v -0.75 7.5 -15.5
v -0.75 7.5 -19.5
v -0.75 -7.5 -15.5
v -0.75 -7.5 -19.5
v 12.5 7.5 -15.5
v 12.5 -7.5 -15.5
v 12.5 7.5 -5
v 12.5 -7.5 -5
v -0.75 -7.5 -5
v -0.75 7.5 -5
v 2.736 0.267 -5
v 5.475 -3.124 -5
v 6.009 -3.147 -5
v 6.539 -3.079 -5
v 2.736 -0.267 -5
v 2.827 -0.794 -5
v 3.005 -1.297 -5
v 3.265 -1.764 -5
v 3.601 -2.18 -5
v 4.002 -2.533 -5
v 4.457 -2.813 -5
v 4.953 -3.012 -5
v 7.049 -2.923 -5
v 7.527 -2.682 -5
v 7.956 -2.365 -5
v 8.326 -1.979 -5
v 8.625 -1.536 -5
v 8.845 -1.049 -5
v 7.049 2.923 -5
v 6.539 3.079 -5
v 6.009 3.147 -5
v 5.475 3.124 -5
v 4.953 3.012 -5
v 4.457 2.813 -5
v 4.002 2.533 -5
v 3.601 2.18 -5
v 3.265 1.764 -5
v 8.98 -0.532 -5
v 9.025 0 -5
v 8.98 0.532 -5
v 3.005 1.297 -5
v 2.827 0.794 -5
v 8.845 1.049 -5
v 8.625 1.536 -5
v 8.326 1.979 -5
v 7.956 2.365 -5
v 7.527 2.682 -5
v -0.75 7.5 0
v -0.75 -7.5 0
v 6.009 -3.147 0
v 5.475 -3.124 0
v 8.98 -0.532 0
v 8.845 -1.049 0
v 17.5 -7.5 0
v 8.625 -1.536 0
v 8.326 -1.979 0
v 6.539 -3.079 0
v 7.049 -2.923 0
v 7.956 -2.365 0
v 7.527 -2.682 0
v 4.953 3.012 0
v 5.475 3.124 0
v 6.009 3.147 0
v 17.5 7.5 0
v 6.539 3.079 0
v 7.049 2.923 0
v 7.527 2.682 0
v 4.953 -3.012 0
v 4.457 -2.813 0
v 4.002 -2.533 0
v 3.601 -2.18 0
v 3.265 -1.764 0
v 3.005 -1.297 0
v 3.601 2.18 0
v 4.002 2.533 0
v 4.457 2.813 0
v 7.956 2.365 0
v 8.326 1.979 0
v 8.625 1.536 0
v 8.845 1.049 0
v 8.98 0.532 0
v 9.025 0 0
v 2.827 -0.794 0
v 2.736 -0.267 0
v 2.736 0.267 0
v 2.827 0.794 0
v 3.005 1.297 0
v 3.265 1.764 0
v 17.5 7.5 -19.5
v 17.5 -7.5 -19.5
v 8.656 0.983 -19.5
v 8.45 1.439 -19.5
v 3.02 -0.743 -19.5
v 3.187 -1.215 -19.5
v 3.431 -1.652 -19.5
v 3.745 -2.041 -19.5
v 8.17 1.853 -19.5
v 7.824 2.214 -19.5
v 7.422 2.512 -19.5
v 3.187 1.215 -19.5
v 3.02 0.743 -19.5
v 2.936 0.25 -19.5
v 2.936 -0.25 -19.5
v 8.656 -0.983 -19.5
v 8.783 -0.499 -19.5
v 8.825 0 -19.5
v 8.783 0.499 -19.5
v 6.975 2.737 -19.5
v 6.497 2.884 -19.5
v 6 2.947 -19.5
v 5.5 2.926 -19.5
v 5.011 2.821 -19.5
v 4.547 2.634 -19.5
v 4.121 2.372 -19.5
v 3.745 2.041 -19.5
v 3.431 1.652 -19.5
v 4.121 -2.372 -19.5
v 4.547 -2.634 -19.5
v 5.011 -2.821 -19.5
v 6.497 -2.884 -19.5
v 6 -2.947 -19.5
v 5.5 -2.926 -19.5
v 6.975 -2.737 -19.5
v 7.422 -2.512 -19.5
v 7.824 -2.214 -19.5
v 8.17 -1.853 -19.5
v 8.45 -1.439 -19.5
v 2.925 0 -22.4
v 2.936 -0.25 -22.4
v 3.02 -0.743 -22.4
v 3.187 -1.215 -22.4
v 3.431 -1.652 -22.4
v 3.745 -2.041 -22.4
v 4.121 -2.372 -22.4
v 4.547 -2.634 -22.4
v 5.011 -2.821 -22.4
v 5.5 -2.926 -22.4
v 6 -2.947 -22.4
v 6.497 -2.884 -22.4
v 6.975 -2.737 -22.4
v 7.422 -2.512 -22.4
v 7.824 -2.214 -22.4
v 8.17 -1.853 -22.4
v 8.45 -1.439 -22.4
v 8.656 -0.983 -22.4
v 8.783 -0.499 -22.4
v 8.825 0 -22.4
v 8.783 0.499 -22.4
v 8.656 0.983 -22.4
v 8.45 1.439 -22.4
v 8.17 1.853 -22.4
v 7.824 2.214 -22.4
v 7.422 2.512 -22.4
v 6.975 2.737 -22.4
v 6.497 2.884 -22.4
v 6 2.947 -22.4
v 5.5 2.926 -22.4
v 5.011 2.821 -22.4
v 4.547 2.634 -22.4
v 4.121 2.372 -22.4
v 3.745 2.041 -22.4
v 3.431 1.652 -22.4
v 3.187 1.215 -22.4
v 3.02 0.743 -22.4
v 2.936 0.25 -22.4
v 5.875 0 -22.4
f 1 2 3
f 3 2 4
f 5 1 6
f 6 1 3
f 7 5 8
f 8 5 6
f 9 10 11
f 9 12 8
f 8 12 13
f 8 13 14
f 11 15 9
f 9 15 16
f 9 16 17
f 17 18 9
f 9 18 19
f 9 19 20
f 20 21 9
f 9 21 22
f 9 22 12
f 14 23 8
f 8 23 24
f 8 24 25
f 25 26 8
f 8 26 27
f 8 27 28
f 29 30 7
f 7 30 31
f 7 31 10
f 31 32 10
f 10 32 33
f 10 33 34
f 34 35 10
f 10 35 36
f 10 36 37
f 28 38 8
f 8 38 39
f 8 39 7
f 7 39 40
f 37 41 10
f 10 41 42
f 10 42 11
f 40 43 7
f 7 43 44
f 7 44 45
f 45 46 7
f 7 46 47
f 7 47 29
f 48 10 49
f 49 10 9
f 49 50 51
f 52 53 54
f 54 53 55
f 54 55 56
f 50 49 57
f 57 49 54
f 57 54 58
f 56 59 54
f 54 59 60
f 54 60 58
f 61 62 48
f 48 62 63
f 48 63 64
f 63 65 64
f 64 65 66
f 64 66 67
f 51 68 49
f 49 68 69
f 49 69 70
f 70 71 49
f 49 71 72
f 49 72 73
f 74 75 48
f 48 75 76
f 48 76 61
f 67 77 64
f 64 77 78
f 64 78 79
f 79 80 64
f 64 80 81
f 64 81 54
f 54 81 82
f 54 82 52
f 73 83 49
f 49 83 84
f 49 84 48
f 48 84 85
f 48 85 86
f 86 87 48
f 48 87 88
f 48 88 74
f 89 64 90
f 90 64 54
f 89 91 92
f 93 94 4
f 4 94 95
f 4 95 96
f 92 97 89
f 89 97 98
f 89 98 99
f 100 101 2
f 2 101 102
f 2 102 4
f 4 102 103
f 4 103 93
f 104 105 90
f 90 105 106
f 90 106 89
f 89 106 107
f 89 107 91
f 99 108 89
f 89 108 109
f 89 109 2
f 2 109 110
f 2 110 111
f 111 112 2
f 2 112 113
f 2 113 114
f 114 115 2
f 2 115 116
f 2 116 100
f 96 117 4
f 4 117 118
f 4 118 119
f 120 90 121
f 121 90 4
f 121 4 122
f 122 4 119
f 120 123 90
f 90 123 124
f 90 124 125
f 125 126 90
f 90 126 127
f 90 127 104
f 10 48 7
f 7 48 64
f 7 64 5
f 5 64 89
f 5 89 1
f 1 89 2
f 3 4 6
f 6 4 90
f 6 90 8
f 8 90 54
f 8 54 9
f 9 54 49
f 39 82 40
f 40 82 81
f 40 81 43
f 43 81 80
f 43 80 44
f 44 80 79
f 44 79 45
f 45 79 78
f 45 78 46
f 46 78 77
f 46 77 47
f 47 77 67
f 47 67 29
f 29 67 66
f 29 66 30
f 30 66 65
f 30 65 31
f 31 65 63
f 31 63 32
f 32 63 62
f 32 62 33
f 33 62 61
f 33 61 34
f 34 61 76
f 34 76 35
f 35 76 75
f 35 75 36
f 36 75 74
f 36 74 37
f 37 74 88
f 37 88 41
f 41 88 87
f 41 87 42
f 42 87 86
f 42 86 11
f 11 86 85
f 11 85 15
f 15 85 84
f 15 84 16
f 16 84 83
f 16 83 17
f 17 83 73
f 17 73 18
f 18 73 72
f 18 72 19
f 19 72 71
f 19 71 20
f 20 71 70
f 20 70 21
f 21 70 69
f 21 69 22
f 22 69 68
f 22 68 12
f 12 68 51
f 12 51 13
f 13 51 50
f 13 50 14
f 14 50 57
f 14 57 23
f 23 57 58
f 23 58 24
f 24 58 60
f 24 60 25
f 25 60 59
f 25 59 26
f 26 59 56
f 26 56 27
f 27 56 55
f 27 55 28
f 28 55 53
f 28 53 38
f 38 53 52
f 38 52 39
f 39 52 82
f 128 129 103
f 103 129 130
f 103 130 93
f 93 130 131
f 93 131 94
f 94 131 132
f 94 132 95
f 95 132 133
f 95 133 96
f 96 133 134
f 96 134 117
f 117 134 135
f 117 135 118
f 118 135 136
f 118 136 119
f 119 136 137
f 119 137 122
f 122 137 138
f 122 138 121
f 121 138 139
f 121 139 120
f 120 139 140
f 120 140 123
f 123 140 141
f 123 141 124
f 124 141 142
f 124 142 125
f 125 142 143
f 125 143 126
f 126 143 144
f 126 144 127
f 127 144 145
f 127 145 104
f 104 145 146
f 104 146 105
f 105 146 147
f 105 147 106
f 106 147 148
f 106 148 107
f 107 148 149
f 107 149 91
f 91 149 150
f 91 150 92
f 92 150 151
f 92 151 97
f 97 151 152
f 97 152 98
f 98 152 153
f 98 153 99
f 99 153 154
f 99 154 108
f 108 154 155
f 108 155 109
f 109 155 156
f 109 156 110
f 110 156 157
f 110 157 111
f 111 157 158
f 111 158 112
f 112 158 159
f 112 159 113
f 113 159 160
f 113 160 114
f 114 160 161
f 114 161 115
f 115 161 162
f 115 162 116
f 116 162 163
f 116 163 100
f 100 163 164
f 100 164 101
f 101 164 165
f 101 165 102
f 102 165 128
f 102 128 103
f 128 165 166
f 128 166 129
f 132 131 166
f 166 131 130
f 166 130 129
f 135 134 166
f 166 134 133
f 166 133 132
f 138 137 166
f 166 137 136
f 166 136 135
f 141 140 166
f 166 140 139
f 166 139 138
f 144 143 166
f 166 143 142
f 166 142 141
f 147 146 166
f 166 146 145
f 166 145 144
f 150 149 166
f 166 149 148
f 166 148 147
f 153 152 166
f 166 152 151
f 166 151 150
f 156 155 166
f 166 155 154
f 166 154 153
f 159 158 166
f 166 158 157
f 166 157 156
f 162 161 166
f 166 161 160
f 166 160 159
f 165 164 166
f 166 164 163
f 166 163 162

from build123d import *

# Parameters (mm, degrees)
BOSS_EXTRUDE2_DEPTH = 7.5
SKETCH6_R           = 3.15
CUT_EXTRUDE1_DEPTH  = 10
SKETCH8_R           = 2.95
BOSS_EXTRUDE3_DEPTH = 2.9


with BuildPart() as part:
    # Sketch1 → Boss-Extrude2 (new, symmetric)
    with BuildSketch(Plane(origin=(0, 0, 0), x_dir=(1, 0, 0), z_dir=(0, 1, 0))):
        Polygon((-0.75, 0), (17.5, 0), (17.5, 19.5), (-0.75, 19.5), (-0.75, 15.5), (12.5, 15.5), (12.5, 5), (6.25, 5), (-0.75, 5), align=None)
    extrude(amount=BOSS_EXTRUDE2_DEPTH, both=True)

    # Sketch6 → Cut-Extrude1 (cut)
    with BuildSketch(Plane.XY):
        with Locations((5.875, 0)):
            Circle(SKETCH6_R)
    extrude(amount=-CUT_EXTRUDE1_DEPTH, mode=Mode.SUBTRACT)

    # Sketch8 → Boss-Extrude3 (add)
    with BuildSketch(Plane(origin=(0, 0, -19.5), x_dir=(-1, 0, 0), z_dir=(0, 0, -1))):
        with Locations(Location((-5.875, 0, 0), (0, 0, 180))):
            Circle(SKETCH8_R)
    extrude(amount=BOSS_EXTRUDE3_DEPTH)


solid = part.part
